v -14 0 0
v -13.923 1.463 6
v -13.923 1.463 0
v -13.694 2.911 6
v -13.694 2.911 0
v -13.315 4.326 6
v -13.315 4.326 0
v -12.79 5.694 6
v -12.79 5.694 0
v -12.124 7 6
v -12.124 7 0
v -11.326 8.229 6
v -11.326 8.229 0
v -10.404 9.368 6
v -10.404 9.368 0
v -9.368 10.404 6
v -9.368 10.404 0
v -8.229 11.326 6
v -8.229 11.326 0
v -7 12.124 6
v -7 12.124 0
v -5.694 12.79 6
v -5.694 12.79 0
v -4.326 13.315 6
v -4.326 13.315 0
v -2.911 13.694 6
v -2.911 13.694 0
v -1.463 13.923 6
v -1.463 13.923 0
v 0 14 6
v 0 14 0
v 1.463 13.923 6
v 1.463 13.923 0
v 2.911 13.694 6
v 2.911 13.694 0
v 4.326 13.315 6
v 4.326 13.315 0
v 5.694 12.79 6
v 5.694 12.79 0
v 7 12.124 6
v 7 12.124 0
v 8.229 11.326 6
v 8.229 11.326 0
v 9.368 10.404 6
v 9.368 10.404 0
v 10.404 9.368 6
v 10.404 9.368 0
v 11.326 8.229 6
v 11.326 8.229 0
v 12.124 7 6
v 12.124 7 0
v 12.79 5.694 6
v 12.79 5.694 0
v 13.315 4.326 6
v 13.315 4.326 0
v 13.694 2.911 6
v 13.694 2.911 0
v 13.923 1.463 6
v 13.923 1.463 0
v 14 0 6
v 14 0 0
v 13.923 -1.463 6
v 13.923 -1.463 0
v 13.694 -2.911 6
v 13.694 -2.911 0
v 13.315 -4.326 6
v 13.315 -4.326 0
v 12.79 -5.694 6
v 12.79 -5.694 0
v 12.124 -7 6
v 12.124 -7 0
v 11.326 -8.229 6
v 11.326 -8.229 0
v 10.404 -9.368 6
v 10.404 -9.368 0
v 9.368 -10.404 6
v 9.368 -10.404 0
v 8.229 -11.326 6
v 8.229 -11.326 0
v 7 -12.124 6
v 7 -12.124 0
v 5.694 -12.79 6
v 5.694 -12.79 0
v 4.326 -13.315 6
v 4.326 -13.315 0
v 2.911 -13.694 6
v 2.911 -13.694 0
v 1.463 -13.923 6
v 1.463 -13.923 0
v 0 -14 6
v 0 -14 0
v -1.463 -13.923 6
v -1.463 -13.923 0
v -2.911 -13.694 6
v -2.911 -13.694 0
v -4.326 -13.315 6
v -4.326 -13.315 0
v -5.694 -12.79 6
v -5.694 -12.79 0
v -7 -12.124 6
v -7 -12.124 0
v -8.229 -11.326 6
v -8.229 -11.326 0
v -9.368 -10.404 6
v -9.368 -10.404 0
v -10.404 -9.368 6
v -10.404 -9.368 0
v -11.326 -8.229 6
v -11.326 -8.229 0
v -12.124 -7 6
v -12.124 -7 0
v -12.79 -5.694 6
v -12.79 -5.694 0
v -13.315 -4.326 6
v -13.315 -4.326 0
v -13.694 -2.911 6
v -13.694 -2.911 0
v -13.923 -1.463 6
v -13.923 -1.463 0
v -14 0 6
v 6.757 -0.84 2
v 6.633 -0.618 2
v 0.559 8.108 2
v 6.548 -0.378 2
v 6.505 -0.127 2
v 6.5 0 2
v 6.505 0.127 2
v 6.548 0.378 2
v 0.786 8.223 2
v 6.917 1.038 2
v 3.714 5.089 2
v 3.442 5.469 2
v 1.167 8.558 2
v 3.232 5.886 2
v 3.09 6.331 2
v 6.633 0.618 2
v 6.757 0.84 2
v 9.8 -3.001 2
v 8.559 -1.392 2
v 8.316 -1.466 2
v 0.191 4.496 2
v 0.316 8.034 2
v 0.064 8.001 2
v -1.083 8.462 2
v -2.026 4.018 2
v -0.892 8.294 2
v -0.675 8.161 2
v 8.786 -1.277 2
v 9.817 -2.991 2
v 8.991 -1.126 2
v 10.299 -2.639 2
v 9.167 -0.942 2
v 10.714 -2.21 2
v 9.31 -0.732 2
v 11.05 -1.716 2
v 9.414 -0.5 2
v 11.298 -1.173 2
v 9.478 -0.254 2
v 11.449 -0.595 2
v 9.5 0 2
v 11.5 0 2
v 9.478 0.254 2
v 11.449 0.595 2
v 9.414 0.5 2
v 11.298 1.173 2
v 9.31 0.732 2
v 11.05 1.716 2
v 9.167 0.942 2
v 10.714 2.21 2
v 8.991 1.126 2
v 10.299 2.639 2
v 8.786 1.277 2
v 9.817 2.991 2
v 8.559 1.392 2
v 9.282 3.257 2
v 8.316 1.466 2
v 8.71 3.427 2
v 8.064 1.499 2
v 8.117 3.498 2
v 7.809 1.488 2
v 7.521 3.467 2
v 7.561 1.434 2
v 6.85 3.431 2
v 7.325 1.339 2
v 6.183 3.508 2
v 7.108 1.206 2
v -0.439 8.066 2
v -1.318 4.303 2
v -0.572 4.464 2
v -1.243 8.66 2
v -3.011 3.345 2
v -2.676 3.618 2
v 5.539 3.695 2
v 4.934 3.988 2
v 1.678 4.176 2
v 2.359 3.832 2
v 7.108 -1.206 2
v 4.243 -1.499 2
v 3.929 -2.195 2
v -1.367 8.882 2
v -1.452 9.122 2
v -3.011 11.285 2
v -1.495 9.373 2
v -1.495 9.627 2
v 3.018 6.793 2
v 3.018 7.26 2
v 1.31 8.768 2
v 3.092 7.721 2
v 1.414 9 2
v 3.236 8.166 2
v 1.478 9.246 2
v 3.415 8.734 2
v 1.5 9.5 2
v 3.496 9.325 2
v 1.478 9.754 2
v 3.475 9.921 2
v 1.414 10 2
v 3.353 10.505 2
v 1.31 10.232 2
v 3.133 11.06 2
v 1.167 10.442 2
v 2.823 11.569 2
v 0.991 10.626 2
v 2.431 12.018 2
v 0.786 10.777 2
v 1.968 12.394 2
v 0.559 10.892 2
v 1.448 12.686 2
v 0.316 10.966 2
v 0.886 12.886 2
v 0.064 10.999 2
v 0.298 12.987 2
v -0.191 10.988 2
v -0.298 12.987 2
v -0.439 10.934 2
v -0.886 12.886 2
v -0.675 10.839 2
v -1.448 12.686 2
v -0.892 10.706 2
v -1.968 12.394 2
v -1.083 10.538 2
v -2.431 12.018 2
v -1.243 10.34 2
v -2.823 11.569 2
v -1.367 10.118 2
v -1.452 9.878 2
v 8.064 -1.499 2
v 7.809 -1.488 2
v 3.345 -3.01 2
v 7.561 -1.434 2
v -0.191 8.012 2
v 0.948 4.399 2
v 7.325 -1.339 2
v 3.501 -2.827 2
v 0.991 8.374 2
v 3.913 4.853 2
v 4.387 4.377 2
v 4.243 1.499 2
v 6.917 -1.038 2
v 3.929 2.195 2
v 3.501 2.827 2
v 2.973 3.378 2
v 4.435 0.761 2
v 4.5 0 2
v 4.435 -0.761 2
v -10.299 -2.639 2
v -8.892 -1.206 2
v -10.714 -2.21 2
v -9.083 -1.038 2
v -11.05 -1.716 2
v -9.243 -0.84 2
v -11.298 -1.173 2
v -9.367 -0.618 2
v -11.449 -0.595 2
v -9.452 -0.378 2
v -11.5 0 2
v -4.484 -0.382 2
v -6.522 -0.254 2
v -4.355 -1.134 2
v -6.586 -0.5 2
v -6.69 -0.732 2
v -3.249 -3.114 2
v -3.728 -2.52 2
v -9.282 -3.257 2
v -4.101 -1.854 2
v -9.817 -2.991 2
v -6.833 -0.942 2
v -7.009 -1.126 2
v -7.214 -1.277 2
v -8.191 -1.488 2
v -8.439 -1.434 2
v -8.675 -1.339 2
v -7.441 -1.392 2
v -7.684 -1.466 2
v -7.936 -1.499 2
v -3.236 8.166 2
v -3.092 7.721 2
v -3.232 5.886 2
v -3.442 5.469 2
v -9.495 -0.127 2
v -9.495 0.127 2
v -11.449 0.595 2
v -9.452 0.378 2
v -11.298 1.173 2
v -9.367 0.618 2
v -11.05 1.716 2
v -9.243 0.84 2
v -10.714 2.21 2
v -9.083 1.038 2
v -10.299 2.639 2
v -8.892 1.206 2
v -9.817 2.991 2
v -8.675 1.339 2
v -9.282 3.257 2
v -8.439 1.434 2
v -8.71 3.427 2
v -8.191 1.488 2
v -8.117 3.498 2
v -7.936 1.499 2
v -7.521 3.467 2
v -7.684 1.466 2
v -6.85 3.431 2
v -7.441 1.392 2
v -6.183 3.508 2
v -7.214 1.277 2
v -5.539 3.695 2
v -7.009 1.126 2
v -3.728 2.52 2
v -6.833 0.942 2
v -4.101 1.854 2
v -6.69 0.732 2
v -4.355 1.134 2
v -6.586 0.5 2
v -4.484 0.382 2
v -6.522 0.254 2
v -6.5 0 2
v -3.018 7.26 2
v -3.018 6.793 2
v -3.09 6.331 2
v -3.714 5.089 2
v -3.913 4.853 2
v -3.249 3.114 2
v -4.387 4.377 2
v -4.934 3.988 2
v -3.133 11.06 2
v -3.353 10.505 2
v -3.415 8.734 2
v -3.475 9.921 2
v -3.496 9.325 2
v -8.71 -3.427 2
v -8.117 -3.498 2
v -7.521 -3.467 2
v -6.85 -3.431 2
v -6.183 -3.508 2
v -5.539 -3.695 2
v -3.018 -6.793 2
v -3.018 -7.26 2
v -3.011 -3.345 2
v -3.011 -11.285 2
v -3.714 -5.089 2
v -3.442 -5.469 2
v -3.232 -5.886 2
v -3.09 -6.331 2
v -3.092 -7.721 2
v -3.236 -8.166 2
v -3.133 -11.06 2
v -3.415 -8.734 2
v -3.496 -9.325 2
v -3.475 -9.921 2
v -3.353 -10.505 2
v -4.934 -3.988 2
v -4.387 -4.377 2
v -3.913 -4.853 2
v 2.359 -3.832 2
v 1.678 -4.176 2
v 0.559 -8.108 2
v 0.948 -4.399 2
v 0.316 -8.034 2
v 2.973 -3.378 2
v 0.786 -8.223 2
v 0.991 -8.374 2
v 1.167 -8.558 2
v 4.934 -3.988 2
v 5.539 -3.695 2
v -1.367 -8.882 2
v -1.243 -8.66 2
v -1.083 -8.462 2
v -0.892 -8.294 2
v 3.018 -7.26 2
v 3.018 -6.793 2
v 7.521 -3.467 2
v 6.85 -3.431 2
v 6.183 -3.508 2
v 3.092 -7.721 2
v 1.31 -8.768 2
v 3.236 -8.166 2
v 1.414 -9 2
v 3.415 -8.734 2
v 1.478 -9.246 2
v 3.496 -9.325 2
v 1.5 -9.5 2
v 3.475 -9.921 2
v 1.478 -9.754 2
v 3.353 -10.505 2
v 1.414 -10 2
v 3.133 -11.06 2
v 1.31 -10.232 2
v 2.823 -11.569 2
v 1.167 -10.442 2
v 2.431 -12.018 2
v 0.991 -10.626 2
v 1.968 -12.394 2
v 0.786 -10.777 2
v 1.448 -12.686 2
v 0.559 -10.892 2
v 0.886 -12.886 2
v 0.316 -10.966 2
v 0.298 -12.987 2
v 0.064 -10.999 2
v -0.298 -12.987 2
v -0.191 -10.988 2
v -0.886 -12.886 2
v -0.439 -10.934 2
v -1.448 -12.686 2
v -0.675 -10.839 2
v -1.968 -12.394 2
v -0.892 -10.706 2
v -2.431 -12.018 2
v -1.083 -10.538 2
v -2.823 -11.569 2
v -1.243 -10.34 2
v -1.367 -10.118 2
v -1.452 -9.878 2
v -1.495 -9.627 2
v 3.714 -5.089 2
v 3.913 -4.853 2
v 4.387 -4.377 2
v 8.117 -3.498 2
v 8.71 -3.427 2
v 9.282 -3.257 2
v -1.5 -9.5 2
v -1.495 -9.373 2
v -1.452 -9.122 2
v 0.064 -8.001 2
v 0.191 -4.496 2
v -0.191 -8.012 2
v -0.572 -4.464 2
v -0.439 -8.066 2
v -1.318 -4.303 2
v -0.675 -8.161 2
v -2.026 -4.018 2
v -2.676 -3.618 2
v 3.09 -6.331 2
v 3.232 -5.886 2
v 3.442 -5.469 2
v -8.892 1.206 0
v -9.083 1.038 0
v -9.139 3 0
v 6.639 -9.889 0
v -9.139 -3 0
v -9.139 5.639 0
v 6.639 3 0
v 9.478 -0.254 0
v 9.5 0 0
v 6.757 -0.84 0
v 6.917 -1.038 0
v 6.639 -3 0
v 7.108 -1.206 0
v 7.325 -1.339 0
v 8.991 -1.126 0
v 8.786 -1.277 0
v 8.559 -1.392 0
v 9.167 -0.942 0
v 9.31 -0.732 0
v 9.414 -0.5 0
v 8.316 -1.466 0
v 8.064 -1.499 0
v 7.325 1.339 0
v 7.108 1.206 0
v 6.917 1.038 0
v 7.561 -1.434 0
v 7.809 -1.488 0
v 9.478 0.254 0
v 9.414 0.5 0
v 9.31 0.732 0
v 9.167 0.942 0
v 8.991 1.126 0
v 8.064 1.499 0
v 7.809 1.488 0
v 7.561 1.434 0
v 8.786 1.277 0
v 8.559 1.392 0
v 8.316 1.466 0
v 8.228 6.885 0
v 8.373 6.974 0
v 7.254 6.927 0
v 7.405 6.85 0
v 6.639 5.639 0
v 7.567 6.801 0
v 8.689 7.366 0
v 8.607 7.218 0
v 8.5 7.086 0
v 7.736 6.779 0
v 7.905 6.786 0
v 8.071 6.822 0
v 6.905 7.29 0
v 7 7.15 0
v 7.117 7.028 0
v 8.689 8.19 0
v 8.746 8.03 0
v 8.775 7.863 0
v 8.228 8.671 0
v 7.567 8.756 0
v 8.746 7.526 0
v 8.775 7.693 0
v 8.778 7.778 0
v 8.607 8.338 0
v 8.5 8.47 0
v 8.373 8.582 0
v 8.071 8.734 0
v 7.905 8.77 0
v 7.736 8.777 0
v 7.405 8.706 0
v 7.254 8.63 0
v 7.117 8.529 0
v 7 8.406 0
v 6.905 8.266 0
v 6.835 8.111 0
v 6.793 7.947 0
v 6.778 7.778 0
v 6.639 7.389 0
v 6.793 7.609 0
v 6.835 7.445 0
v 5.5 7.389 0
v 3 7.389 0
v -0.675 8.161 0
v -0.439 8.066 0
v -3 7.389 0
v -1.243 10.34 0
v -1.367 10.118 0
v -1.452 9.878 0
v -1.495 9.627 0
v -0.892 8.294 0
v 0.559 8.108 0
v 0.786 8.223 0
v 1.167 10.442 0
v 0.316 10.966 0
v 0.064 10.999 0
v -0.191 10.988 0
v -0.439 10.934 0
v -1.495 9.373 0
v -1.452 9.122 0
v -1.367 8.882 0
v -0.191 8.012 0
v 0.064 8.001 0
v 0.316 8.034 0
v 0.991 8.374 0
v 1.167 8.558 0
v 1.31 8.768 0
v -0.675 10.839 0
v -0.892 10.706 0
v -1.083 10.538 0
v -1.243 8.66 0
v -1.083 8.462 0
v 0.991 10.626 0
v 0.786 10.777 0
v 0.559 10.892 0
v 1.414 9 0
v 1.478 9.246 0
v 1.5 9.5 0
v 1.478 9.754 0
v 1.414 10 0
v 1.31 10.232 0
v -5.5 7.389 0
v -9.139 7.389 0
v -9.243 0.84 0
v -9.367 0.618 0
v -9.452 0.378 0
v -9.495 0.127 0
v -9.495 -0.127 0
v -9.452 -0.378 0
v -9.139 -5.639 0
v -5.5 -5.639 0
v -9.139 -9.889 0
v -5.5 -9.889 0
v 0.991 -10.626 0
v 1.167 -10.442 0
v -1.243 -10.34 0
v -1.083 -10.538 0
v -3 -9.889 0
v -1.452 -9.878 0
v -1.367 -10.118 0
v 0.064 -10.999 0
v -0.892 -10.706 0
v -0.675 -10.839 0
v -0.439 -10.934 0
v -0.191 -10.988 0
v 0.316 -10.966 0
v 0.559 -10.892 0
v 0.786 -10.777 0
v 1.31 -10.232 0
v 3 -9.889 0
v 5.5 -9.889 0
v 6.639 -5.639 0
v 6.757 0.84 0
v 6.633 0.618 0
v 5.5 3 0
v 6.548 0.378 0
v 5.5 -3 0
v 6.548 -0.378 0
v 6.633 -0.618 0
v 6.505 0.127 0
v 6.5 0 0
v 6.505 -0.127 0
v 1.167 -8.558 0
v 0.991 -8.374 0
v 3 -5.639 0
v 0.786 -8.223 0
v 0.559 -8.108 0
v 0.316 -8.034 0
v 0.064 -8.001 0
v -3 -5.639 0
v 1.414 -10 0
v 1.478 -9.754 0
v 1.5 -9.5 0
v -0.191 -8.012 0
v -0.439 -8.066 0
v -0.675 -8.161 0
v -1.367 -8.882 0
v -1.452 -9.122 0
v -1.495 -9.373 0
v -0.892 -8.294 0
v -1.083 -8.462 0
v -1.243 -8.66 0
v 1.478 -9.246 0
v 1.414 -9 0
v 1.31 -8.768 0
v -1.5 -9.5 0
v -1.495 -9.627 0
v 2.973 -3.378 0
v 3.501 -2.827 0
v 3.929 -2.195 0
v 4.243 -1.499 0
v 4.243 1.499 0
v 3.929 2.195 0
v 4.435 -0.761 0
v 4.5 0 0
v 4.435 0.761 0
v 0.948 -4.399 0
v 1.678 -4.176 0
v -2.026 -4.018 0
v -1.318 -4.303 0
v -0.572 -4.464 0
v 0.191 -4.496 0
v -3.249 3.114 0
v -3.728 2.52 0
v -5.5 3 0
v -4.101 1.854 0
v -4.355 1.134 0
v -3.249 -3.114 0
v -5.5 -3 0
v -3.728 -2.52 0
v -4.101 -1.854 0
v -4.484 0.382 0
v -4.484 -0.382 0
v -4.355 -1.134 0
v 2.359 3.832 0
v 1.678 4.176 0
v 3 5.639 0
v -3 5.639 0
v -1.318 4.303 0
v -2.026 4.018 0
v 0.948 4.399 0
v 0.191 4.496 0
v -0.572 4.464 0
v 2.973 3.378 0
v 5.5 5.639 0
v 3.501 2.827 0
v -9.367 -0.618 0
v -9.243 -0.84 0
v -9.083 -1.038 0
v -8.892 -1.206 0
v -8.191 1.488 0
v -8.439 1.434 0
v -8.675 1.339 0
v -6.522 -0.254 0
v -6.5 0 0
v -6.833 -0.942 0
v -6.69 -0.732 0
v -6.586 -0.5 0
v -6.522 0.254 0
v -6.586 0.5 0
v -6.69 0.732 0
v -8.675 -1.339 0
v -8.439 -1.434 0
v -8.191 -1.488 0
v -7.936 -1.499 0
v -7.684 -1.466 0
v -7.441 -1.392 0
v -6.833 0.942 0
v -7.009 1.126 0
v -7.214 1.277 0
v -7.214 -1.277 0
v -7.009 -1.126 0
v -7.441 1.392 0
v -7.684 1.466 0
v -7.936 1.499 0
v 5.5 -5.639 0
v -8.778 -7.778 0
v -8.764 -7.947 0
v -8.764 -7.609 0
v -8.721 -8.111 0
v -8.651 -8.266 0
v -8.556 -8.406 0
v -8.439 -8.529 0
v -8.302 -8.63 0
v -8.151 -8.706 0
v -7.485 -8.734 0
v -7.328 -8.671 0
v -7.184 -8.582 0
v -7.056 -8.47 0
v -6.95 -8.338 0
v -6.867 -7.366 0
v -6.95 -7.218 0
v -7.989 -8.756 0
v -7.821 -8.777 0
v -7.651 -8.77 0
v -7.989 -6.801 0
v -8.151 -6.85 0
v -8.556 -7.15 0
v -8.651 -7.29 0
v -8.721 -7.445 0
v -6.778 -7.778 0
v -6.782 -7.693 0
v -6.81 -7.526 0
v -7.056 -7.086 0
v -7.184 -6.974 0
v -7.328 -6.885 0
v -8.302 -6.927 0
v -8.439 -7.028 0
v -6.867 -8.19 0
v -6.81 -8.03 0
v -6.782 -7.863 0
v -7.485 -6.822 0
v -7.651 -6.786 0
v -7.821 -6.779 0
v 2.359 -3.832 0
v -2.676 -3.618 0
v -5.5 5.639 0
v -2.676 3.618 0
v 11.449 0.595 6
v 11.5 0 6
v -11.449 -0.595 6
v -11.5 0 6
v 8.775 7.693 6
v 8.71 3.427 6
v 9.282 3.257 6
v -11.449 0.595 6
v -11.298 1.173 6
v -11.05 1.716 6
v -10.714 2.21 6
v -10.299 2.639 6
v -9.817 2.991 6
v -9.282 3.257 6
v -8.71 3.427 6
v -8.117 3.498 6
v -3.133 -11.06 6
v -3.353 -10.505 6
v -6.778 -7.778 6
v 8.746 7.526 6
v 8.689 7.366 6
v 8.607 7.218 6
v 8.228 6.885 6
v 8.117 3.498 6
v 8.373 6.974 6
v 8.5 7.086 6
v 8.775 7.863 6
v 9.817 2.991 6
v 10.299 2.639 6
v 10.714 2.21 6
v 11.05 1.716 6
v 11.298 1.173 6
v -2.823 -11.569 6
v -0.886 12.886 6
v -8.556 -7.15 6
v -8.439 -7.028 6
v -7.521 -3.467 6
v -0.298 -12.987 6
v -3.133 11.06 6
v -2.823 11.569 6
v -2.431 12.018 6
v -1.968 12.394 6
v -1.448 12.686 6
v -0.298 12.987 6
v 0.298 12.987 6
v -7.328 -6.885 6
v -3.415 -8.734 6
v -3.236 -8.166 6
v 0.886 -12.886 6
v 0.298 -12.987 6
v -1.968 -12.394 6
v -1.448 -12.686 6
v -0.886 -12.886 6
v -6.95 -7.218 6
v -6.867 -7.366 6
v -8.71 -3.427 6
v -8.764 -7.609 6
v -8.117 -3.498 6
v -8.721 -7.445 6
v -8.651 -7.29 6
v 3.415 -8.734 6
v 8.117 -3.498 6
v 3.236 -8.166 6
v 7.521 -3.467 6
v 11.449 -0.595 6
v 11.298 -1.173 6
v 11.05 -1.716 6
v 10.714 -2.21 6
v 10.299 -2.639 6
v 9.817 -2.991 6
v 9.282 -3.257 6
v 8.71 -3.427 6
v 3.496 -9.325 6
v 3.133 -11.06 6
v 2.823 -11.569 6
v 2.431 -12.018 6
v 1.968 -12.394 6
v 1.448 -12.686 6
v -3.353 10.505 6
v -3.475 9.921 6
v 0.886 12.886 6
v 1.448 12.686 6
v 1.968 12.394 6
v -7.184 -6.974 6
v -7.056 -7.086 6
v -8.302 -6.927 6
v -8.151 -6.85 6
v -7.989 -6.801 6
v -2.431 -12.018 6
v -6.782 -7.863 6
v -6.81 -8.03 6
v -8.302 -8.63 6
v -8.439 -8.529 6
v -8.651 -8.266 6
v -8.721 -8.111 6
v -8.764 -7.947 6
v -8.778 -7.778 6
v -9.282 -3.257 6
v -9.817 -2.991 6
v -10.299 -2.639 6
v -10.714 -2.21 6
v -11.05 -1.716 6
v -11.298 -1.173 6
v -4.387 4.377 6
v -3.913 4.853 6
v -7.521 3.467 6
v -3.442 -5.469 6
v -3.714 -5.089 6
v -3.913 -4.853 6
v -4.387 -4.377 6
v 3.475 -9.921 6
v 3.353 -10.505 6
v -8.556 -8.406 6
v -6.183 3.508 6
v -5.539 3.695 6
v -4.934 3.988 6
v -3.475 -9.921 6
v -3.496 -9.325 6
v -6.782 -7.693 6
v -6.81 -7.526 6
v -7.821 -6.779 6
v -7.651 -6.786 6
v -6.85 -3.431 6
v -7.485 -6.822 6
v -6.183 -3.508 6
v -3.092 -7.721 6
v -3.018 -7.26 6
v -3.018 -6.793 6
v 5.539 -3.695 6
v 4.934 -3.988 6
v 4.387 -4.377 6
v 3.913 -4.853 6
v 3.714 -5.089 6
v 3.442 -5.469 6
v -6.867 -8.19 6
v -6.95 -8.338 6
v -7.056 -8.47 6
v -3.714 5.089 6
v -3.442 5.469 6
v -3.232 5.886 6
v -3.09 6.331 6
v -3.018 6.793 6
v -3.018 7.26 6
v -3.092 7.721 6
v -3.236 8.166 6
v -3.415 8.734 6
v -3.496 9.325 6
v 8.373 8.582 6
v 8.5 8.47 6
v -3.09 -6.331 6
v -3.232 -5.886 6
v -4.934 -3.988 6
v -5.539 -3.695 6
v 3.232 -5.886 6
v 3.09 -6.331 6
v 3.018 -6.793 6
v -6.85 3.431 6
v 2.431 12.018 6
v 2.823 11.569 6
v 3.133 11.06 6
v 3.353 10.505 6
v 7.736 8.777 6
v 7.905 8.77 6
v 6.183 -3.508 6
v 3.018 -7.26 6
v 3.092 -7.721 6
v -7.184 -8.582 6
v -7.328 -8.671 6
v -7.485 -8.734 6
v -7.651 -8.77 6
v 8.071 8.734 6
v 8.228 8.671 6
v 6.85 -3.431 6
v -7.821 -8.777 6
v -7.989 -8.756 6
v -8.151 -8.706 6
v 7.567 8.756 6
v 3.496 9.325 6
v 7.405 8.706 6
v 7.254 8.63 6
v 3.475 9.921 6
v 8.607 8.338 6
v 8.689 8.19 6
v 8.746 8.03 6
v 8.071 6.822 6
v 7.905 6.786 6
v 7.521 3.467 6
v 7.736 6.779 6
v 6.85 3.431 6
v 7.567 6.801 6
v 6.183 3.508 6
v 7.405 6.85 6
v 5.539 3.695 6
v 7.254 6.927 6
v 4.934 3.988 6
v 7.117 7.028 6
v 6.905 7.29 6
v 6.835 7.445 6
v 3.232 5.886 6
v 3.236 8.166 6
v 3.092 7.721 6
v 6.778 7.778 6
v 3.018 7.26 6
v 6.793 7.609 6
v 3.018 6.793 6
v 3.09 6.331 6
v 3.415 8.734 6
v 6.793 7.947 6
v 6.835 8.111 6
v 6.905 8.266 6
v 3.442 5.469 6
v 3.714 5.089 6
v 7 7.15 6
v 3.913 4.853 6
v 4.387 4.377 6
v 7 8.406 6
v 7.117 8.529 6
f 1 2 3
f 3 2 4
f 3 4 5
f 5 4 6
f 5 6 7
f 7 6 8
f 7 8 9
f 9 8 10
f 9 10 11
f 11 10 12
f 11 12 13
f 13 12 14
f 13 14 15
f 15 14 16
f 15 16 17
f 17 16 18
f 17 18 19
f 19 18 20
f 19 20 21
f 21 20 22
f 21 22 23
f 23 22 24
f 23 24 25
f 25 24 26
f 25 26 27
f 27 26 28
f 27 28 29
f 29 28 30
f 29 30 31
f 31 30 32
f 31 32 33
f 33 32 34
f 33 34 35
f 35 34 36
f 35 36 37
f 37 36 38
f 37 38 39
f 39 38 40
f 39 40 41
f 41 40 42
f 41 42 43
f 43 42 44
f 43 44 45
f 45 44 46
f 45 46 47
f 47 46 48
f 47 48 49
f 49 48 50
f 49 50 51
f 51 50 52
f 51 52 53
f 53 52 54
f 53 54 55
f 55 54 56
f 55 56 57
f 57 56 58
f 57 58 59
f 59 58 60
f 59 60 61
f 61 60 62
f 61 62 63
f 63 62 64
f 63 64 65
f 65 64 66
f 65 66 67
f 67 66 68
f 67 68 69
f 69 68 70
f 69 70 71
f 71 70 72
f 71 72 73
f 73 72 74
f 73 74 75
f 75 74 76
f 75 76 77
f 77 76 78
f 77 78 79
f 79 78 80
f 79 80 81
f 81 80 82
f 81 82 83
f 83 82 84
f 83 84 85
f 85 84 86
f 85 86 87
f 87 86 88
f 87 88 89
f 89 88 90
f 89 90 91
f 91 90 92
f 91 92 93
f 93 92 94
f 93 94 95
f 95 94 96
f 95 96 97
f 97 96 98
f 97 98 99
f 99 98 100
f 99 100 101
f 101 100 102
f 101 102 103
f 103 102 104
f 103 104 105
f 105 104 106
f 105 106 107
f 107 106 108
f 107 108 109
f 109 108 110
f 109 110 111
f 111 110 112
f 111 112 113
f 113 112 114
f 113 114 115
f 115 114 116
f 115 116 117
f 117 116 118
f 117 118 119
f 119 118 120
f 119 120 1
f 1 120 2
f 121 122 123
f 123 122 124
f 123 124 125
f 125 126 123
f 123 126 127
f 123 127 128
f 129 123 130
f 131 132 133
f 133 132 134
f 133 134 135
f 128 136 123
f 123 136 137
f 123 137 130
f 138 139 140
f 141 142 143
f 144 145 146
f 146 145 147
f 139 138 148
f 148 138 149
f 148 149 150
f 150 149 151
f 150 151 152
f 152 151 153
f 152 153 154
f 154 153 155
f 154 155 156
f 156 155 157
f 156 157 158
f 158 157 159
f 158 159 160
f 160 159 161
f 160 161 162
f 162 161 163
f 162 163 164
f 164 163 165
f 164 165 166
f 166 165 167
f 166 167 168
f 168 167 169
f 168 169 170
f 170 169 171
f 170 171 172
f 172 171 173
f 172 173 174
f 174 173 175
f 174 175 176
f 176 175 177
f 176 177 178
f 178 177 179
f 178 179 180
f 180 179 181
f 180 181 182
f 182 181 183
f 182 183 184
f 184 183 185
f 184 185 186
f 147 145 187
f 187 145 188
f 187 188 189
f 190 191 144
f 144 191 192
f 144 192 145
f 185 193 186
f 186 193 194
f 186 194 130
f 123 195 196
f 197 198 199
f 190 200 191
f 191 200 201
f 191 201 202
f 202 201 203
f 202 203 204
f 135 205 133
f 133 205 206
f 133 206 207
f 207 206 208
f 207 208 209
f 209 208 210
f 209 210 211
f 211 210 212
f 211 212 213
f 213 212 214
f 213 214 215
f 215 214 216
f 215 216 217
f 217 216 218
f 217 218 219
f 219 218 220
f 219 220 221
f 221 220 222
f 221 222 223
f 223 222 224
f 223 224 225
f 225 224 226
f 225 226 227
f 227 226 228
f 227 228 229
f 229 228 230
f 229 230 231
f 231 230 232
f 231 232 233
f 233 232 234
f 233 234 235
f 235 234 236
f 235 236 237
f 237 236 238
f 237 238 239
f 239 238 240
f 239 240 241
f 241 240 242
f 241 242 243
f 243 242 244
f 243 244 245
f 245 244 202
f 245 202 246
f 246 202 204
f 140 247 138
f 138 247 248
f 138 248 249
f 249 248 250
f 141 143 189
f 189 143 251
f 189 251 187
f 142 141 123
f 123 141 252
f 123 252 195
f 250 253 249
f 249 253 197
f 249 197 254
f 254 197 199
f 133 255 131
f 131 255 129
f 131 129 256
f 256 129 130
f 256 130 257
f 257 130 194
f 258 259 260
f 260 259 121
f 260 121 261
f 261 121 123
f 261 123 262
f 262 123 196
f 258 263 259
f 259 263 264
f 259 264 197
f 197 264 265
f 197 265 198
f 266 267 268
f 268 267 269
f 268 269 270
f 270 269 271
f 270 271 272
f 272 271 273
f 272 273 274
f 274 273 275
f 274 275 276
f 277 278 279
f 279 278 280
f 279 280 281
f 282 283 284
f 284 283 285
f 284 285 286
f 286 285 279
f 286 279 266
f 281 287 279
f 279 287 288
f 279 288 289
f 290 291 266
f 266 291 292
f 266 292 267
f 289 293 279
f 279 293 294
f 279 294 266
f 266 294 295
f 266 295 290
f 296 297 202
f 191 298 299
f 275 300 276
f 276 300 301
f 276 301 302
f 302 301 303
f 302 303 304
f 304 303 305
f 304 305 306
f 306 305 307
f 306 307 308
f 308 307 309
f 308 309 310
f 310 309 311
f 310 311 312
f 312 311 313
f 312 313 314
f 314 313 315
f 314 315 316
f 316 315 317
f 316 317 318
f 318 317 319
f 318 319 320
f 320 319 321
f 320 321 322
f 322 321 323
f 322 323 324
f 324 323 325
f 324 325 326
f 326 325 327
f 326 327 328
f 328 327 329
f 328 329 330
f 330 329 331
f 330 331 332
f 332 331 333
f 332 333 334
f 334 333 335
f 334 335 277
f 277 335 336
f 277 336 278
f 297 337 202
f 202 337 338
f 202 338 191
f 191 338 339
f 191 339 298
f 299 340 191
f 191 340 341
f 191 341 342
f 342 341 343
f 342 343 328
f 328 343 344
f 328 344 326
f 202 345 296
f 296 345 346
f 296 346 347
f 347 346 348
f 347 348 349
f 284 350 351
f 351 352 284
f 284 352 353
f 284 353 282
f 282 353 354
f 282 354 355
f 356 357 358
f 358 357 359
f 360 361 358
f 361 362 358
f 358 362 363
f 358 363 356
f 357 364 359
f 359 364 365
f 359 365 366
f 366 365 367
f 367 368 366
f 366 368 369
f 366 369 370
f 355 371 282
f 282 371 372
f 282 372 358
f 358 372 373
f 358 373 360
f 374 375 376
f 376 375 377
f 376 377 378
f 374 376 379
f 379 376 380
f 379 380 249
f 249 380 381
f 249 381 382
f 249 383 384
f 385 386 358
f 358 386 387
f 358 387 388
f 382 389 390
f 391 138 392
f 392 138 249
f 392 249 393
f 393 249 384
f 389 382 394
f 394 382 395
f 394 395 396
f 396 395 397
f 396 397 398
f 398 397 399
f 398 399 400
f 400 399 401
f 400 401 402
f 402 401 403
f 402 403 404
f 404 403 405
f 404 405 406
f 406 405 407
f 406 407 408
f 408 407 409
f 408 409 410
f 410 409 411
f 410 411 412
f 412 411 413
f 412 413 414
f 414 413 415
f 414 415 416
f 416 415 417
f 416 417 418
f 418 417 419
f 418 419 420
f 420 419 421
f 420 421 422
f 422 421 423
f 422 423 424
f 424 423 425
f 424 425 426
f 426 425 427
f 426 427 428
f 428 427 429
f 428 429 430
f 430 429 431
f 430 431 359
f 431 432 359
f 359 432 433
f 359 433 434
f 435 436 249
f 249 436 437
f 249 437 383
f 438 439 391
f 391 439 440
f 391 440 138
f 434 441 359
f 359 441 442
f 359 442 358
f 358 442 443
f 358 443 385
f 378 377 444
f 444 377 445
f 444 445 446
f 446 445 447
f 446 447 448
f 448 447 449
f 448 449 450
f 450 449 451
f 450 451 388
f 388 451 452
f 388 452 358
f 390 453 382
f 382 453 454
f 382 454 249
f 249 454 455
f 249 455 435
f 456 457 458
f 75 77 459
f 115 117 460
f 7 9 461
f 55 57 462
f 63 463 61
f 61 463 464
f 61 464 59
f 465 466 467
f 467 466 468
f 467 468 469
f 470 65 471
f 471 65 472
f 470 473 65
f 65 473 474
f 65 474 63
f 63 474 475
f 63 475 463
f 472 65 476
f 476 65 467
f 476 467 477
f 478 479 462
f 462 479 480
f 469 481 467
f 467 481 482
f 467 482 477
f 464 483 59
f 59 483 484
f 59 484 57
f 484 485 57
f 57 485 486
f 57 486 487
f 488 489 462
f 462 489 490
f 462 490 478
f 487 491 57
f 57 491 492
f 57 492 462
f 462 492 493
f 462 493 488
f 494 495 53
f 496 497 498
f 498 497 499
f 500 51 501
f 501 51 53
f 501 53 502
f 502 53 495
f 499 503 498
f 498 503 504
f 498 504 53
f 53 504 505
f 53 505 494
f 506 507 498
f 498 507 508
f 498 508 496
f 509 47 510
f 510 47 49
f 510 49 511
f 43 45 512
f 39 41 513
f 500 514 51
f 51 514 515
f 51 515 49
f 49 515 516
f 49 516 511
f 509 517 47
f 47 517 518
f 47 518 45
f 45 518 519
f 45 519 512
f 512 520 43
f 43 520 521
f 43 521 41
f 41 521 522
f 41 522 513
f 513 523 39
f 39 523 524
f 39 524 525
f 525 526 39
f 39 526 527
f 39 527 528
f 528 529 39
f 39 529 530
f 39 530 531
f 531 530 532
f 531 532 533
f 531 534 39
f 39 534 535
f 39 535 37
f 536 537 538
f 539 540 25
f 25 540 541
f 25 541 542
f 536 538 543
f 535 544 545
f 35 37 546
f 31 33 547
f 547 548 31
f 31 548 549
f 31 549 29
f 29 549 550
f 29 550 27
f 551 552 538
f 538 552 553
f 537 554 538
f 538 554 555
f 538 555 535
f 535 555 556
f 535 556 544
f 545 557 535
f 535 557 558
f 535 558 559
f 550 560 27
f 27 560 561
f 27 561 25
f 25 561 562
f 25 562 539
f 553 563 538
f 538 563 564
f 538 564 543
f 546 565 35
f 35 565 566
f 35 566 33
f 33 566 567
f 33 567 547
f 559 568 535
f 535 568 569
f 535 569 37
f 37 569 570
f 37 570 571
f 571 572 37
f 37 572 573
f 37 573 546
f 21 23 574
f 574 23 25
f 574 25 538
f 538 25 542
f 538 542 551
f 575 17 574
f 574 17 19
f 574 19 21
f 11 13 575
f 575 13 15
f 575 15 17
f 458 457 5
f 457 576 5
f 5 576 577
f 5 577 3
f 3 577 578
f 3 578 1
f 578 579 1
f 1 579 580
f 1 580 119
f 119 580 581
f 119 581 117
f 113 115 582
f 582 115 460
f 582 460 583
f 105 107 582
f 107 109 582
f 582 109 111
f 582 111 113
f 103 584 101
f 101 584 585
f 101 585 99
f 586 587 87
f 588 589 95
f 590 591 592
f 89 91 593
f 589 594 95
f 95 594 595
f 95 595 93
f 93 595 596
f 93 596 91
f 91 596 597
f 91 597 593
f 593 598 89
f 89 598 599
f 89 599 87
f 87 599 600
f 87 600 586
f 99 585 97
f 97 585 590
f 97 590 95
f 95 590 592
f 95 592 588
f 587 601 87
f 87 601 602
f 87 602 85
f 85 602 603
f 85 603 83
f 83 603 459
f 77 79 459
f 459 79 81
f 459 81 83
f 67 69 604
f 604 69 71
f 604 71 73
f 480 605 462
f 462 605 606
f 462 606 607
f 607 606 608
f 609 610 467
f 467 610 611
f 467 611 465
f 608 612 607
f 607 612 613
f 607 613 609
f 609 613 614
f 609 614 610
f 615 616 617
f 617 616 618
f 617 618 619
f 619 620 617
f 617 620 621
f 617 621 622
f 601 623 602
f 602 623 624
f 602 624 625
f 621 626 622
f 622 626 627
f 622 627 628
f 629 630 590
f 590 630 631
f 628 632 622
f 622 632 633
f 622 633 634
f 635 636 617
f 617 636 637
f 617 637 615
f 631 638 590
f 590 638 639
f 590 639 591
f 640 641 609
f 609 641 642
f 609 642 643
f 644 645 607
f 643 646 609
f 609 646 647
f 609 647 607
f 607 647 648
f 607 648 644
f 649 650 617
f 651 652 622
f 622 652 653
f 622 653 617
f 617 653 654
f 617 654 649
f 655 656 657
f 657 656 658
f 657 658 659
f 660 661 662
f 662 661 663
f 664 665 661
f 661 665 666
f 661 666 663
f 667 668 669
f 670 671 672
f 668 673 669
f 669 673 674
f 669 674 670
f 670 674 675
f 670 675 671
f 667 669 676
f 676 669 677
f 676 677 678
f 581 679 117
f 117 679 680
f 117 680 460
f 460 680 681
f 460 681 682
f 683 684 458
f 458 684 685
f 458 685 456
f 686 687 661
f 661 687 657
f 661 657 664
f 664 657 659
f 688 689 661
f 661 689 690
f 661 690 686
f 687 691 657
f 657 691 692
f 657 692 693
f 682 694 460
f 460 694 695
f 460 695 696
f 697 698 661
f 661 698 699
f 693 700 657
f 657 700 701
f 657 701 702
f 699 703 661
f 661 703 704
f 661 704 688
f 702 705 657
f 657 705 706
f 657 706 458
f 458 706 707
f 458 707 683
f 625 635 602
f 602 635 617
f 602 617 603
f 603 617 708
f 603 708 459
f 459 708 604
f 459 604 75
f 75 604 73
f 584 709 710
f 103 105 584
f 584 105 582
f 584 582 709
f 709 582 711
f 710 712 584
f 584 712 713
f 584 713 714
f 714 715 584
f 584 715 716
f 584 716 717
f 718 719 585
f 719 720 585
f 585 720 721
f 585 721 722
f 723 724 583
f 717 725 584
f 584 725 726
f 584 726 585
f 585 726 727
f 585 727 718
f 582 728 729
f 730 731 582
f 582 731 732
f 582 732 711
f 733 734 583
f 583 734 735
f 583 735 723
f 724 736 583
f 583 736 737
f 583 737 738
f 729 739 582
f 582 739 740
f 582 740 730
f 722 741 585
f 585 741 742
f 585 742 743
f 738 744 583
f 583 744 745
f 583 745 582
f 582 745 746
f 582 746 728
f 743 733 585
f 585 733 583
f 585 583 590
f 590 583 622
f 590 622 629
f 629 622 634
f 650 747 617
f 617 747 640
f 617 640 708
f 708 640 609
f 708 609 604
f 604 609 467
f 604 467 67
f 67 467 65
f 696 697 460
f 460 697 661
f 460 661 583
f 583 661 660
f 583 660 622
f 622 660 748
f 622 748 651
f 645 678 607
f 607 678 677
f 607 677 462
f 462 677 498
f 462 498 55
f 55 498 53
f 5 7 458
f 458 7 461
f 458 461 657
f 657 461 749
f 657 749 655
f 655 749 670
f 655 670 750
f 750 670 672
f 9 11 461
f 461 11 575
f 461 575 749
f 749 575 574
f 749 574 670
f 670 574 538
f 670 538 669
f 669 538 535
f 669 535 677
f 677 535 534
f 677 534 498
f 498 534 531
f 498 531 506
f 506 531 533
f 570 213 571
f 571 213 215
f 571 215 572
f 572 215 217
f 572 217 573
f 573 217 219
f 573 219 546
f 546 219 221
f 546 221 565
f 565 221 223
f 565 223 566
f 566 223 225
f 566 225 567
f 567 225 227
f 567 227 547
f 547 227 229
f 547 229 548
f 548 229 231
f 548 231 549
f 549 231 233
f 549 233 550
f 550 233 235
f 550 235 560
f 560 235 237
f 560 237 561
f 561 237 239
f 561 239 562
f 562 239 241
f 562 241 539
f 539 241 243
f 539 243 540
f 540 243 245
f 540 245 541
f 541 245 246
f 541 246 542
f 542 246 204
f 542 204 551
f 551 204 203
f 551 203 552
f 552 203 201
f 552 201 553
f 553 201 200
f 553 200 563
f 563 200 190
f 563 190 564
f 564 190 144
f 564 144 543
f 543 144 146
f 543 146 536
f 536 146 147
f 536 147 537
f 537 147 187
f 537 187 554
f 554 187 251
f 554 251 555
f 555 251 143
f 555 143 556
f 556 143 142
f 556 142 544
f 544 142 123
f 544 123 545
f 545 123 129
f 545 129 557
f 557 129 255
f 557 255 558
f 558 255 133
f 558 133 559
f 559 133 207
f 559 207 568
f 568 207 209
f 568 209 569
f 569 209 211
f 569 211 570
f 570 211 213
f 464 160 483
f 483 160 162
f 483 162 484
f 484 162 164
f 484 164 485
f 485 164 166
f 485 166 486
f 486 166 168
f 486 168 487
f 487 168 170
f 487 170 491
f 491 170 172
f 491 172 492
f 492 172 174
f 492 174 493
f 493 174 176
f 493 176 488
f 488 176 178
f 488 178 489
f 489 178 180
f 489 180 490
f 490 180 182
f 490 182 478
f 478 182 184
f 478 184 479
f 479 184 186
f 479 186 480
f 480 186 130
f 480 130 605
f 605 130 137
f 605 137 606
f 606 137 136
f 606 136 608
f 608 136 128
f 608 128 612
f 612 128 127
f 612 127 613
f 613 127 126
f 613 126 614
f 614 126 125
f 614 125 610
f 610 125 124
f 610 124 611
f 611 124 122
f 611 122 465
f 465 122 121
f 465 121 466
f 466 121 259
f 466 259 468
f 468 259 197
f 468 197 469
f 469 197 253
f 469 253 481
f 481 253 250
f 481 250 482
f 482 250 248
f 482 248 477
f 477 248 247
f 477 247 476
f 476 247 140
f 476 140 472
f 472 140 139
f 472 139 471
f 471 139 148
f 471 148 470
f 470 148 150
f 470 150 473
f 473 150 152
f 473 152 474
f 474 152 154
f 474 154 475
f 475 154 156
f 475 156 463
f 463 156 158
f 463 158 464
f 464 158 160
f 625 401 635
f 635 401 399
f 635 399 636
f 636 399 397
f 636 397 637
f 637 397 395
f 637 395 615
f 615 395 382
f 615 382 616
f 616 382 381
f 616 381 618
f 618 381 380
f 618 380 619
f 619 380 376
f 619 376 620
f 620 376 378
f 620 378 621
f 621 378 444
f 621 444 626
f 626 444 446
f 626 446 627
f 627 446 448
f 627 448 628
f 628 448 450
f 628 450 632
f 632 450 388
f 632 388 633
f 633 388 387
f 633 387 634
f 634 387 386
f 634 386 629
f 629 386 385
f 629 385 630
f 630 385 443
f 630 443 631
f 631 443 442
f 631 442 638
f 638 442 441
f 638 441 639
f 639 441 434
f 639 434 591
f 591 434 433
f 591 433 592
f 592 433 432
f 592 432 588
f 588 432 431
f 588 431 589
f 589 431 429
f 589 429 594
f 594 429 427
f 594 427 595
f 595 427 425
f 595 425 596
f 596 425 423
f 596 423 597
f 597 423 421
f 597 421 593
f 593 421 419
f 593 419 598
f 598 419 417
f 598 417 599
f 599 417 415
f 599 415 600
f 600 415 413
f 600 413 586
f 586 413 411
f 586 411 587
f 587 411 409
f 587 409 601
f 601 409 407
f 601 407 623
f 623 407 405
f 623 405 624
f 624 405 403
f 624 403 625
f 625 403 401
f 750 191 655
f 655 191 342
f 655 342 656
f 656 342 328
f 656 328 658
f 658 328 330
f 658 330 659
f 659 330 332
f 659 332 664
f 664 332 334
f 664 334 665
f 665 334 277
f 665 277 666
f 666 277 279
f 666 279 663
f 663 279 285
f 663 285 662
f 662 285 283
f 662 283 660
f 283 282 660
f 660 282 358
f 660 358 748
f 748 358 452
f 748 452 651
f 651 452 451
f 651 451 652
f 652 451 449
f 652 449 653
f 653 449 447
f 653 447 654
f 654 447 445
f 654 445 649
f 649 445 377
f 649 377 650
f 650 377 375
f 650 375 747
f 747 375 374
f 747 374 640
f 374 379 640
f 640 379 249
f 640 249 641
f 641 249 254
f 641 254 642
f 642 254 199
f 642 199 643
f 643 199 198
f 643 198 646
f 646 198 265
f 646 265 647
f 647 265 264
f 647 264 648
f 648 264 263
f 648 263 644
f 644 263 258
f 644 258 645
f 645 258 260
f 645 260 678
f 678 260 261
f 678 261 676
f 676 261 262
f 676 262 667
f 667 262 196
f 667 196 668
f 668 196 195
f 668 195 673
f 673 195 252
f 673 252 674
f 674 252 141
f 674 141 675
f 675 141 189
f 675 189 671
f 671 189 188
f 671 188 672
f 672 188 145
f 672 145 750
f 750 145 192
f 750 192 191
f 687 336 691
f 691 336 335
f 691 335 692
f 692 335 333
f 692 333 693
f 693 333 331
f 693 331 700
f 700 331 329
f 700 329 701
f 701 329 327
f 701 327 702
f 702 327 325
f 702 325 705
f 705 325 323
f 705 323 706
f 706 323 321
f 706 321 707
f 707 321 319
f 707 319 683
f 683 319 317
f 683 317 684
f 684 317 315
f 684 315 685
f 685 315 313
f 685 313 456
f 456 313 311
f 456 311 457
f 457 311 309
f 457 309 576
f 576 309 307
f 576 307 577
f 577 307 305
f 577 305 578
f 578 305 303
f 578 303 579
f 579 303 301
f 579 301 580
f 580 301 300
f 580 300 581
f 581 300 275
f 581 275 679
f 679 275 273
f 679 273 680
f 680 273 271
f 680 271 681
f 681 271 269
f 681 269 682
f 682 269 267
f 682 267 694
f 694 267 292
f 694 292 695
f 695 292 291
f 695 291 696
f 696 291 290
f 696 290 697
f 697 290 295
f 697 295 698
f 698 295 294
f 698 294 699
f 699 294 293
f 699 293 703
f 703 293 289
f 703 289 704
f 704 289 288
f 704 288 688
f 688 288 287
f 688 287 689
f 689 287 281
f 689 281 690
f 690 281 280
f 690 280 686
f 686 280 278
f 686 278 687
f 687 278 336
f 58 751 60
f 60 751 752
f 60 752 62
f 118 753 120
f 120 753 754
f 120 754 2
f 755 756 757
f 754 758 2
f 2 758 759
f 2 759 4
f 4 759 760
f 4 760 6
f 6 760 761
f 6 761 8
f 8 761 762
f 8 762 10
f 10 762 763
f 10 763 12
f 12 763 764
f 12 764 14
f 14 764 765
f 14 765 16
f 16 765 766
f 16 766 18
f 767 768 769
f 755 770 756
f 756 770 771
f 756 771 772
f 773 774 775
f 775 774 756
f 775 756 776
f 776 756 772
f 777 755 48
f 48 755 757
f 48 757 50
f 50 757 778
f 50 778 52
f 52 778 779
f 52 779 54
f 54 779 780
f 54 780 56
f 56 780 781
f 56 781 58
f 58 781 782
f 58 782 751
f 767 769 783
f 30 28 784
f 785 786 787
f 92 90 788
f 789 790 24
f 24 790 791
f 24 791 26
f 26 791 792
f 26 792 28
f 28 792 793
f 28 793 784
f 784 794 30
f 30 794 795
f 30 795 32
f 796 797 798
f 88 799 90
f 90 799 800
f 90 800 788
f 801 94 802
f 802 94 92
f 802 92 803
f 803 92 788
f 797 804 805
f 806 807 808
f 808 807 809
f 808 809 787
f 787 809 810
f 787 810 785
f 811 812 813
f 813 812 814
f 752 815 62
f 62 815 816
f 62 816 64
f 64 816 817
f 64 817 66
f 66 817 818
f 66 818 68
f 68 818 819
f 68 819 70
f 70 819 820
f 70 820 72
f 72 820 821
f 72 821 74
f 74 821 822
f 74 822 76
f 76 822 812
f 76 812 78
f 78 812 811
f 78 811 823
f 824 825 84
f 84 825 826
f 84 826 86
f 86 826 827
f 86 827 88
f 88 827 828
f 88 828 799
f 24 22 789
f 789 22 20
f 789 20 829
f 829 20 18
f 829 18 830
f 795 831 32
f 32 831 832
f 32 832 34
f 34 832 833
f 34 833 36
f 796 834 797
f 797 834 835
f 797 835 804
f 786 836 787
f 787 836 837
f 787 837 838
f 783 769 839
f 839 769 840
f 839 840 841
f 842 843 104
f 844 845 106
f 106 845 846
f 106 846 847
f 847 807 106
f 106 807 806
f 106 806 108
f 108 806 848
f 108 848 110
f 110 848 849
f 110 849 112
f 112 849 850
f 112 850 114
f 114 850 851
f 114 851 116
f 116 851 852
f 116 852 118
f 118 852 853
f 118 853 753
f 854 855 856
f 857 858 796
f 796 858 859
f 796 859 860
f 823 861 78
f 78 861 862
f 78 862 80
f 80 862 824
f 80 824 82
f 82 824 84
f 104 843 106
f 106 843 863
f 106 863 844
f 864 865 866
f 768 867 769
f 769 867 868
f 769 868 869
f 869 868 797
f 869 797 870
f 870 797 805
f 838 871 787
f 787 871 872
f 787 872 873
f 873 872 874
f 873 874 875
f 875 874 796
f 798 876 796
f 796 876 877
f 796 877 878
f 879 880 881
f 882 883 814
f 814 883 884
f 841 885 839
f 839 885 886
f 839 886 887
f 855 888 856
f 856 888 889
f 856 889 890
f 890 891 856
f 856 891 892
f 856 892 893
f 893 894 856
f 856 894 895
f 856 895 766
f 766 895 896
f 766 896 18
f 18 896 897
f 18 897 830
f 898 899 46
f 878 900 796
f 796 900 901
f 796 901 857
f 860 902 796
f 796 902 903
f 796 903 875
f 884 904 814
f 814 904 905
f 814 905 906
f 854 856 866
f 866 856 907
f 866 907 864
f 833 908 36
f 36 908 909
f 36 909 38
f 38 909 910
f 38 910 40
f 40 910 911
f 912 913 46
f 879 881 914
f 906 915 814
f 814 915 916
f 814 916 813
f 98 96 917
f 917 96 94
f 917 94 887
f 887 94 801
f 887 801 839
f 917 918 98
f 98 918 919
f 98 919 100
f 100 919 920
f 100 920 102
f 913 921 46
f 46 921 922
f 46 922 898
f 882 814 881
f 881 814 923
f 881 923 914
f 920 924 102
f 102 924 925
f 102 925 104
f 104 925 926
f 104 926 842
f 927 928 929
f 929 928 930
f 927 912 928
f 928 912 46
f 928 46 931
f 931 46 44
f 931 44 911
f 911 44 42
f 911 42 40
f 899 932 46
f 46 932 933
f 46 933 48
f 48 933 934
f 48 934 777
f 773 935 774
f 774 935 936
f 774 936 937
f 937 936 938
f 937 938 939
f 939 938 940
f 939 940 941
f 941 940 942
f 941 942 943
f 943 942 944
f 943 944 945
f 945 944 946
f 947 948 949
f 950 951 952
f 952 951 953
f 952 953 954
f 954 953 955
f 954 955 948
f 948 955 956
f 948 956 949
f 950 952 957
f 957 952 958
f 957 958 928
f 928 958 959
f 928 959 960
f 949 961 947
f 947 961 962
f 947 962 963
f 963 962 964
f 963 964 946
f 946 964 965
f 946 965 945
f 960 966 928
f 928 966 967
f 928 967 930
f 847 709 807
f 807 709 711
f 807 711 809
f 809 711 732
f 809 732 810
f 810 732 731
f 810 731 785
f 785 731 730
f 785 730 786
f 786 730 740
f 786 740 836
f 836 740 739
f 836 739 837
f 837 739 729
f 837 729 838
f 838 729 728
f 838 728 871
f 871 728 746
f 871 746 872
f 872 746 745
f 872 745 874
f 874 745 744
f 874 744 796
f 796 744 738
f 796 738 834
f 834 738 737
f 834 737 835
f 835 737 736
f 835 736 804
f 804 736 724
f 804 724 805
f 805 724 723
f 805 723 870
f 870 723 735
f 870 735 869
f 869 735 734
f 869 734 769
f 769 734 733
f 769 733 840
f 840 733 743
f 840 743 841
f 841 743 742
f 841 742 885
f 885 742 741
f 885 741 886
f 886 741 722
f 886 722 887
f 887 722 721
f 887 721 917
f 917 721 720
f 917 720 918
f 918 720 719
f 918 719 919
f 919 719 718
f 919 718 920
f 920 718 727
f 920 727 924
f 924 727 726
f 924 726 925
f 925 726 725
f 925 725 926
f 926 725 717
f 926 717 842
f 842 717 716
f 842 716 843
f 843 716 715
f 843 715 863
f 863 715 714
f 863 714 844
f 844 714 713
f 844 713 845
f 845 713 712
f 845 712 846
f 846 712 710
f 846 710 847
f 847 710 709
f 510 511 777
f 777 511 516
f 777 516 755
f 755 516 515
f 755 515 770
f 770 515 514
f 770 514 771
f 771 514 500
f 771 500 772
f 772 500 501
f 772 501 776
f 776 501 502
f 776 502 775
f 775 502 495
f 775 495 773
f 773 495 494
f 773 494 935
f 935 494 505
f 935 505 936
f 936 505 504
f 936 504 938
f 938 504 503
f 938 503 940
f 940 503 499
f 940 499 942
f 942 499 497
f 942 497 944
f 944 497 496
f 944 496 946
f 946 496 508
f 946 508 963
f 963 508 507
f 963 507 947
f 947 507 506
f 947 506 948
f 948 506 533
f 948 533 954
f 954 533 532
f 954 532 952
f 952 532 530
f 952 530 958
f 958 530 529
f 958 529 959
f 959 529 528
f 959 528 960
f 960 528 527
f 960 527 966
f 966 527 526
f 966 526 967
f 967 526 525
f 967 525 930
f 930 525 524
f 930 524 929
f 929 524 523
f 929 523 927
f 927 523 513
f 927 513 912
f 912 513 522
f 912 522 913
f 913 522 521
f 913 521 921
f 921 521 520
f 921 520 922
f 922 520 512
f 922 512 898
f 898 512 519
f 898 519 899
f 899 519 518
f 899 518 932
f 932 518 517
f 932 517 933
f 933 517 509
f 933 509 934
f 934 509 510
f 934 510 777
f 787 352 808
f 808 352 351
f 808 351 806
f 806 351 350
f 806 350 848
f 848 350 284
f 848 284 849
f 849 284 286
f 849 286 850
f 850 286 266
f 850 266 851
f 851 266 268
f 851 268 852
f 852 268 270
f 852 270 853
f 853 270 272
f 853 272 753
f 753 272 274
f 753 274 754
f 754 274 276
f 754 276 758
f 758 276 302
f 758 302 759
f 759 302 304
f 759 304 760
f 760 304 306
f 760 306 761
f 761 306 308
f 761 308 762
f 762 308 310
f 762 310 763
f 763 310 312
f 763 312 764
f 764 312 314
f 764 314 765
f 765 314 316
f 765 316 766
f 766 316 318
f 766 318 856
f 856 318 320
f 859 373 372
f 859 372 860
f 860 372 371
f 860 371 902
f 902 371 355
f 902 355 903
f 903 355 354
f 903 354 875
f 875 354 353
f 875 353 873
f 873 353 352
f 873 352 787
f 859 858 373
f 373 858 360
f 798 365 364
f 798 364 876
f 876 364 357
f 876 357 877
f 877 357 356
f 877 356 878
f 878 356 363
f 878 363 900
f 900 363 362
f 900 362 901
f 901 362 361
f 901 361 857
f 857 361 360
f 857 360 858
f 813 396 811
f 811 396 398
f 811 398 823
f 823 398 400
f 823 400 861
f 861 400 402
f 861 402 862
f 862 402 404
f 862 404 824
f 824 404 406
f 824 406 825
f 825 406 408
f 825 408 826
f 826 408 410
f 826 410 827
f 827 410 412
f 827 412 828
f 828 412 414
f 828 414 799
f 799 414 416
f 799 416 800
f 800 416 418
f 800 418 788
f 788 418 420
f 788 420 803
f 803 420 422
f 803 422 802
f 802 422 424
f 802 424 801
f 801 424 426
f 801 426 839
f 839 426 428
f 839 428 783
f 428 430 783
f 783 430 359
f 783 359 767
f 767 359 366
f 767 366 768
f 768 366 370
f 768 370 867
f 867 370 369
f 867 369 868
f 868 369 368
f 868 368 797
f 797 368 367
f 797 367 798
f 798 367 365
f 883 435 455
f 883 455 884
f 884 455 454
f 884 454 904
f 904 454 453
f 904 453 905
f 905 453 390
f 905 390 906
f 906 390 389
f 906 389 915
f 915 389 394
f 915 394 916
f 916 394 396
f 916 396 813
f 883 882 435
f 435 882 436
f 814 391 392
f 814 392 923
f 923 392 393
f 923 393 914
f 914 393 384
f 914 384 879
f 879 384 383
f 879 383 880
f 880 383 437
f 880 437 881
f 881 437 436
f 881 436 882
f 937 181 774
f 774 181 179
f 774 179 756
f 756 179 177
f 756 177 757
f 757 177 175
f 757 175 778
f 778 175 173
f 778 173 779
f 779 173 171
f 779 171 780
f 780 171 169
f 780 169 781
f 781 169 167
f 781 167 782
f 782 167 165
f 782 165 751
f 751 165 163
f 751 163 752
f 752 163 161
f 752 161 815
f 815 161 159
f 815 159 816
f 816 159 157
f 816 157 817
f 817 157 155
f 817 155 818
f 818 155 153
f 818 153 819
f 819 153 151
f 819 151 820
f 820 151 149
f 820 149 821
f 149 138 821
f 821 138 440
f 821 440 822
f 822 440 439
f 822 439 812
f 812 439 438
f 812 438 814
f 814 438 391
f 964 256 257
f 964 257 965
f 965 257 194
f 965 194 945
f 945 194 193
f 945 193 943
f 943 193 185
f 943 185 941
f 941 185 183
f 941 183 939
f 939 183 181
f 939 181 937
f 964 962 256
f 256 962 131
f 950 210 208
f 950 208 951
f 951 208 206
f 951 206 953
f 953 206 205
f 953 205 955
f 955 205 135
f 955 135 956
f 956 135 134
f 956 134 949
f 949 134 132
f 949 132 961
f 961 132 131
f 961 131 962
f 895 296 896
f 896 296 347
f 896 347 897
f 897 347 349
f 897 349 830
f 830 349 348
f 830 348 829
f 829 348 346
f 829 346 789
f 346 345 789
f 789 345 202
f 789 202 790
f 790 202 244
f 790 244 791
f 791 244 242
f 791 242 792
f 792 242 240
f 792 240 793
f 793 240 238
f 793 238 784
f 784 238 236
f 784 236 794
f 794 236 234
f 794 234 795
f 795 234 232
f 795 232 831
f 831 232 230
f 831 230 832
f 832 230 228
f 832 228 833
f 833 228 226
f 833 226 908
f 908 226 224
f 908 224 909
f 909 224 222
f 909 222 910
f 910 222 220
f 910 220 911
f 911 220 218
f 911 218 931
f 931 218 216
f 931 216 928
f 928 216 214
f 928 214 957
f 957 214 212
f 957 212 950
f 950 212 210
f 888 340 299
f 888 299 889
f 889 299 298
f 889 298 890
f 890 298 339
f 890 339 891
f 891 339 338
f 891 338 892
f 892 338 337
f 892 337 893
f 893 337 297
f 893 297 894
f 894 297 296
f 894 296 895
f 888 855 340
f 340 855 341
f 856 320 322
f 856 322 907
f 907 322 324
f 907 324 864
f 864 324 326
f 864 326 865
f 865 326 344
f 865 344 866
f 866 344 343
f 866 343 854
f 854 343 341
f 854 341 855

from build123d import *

# Parameters (mm, degrees)
SKETCH_1_R          = 14
EXTRUDE_1_DEPTH     = 2
SKETCH_2_R          = 1.5
SKETCH_2_R_2        = 4.5
CUT_EXTRUDE_1_DEPTH = 3
SKETCH_3_R          = 14
SKETCH_3_R_2        = 1
EXTRUDE_3_DEPTH     = 4
SKETCH_4_R          = 1
CUT_EXTRUDE_2_DEPTH = 7


with BuildPart() as part:
    # 草图1 → 凸台-拉伸1 (new body)
    with BuildSketch(Plane.XY):
        Circle(SKETCH_1_R)
    extrude(amount=EXTRUDE_1_DEPTH)

    # 草图2 → 切除-拉伸1 (cut, through all)
    with BuildSketch(Plane.XY.offset(2)):
        with Locations((-8, 0)):
            Circle(SKETCH_2_R)
        with Locations((0, 9.5)):
            Circle(SKETCH_2_R)
        with Locations((8, 0)):
            Circle(SKETCH_2_R)
        with Locations((0, -9.5)):
            Circle(SKETCH_2_R)
        Circle(SKETCH_2_R_2)
    extrude(amount=-CUT_EXTRUDE_1_DEPTH, mode=Mode.SUBTRACT)

    # 草图3 → 凸台-拉伸3 (add)
    with BuildSketch(Plane.XY.offset(2)):
        Circle(SKETCH_3_R)
        with Locations((-7.778174593, -7.778174593)):
            Circle(SKETCH_3_R_2, mode=Mode.SUBTRACT)
        with Locations((7.778174593, 7.778174593)):
            Circle(SKETCH_3_R_2, mode=Mode.SUBTRACT)
        with BuildLine():
            Line((-3.913416822, -4.852817524), (-3.714267904, -5.089306864))
            ThreePointArc((-3.714267904, -5.089306864), (-3.044670654, -6.56047377), (-3.235616191, -8.165538362))
            ThreePointArc((-3.235616191, -8.165538362), (0, -13), (3.235616191, -8.165538362))
            ThreePointArc((3.235616191, -8.165538362), (3.044670654, -6.56047377), (3.714267904, -5.089306864))
            Line((3.714267904, -5.089306864), (3.913416822, -4.852817524))
            ThreePointArc((3.913416822, -4.852817524), (5.538640325, -3.695403416), (7.520762087, -3.467034904))
            ThreePointArc((7.520762087, -3.467034904), (11.5, 0), (7.520762087, 3.467034904))
            ThreePointArc((7.520762087, 3.467034904), (5.538640325, 3.695403416), (3.913416822, 4.852817524))
            Line((3.913416822, 4.852817524), (3.714267904, 5.089306864))
            ThreePointArc((3.714267904, 5.089306864), (3.044670654, 6.56047377), (3.235616191, 8.165538362))
            ThreePointArc((3.235616191, 8.165538362), (0, 13), (-3.235616191, 8.165538362))
            ThreePointArc((-3.235616191, 8.165538362), (-3.044670654, 6.56047377), (-3.714267904, 5.089306864))
            Line((-3.714267904, 5.089306864), (-3.913416822, 4.852817524))
            ThreePointArc((-3.913416822, 4.852817524), (-5.538640325, 3.695403416), (-7.520762087, 3.467034904))
            ThreePointArc((-7.520762087, 3.467034904), (-11.5, 0), (-7.520762087, -3.467034904))
            ThreePointArc((-7.520762087, -3.467034904), (-5.538640325, -3.695403416), (-3.913416822, -4.852817524))
        make_face(mode=Mode.SUBTRACT)
    extrude(amount=EXTRUDE_3_DEPTH)

    # 草图4 → 切除-拉伸2 (cut, through all)
    with BuildSketch(Plane.XY.offset(6)):
        with Locations((7.778174593, 7.778174593)):
            Circle(SKETCH_4_R)
        with Locations((-7.778174593, -7.778174593)):
            Circle(SKETCH_4_R)
    extrude(amount=-CUT_EXTRUDE_2_DEPTH, mode=Mode.SUBTRACT)


solid = part.part
